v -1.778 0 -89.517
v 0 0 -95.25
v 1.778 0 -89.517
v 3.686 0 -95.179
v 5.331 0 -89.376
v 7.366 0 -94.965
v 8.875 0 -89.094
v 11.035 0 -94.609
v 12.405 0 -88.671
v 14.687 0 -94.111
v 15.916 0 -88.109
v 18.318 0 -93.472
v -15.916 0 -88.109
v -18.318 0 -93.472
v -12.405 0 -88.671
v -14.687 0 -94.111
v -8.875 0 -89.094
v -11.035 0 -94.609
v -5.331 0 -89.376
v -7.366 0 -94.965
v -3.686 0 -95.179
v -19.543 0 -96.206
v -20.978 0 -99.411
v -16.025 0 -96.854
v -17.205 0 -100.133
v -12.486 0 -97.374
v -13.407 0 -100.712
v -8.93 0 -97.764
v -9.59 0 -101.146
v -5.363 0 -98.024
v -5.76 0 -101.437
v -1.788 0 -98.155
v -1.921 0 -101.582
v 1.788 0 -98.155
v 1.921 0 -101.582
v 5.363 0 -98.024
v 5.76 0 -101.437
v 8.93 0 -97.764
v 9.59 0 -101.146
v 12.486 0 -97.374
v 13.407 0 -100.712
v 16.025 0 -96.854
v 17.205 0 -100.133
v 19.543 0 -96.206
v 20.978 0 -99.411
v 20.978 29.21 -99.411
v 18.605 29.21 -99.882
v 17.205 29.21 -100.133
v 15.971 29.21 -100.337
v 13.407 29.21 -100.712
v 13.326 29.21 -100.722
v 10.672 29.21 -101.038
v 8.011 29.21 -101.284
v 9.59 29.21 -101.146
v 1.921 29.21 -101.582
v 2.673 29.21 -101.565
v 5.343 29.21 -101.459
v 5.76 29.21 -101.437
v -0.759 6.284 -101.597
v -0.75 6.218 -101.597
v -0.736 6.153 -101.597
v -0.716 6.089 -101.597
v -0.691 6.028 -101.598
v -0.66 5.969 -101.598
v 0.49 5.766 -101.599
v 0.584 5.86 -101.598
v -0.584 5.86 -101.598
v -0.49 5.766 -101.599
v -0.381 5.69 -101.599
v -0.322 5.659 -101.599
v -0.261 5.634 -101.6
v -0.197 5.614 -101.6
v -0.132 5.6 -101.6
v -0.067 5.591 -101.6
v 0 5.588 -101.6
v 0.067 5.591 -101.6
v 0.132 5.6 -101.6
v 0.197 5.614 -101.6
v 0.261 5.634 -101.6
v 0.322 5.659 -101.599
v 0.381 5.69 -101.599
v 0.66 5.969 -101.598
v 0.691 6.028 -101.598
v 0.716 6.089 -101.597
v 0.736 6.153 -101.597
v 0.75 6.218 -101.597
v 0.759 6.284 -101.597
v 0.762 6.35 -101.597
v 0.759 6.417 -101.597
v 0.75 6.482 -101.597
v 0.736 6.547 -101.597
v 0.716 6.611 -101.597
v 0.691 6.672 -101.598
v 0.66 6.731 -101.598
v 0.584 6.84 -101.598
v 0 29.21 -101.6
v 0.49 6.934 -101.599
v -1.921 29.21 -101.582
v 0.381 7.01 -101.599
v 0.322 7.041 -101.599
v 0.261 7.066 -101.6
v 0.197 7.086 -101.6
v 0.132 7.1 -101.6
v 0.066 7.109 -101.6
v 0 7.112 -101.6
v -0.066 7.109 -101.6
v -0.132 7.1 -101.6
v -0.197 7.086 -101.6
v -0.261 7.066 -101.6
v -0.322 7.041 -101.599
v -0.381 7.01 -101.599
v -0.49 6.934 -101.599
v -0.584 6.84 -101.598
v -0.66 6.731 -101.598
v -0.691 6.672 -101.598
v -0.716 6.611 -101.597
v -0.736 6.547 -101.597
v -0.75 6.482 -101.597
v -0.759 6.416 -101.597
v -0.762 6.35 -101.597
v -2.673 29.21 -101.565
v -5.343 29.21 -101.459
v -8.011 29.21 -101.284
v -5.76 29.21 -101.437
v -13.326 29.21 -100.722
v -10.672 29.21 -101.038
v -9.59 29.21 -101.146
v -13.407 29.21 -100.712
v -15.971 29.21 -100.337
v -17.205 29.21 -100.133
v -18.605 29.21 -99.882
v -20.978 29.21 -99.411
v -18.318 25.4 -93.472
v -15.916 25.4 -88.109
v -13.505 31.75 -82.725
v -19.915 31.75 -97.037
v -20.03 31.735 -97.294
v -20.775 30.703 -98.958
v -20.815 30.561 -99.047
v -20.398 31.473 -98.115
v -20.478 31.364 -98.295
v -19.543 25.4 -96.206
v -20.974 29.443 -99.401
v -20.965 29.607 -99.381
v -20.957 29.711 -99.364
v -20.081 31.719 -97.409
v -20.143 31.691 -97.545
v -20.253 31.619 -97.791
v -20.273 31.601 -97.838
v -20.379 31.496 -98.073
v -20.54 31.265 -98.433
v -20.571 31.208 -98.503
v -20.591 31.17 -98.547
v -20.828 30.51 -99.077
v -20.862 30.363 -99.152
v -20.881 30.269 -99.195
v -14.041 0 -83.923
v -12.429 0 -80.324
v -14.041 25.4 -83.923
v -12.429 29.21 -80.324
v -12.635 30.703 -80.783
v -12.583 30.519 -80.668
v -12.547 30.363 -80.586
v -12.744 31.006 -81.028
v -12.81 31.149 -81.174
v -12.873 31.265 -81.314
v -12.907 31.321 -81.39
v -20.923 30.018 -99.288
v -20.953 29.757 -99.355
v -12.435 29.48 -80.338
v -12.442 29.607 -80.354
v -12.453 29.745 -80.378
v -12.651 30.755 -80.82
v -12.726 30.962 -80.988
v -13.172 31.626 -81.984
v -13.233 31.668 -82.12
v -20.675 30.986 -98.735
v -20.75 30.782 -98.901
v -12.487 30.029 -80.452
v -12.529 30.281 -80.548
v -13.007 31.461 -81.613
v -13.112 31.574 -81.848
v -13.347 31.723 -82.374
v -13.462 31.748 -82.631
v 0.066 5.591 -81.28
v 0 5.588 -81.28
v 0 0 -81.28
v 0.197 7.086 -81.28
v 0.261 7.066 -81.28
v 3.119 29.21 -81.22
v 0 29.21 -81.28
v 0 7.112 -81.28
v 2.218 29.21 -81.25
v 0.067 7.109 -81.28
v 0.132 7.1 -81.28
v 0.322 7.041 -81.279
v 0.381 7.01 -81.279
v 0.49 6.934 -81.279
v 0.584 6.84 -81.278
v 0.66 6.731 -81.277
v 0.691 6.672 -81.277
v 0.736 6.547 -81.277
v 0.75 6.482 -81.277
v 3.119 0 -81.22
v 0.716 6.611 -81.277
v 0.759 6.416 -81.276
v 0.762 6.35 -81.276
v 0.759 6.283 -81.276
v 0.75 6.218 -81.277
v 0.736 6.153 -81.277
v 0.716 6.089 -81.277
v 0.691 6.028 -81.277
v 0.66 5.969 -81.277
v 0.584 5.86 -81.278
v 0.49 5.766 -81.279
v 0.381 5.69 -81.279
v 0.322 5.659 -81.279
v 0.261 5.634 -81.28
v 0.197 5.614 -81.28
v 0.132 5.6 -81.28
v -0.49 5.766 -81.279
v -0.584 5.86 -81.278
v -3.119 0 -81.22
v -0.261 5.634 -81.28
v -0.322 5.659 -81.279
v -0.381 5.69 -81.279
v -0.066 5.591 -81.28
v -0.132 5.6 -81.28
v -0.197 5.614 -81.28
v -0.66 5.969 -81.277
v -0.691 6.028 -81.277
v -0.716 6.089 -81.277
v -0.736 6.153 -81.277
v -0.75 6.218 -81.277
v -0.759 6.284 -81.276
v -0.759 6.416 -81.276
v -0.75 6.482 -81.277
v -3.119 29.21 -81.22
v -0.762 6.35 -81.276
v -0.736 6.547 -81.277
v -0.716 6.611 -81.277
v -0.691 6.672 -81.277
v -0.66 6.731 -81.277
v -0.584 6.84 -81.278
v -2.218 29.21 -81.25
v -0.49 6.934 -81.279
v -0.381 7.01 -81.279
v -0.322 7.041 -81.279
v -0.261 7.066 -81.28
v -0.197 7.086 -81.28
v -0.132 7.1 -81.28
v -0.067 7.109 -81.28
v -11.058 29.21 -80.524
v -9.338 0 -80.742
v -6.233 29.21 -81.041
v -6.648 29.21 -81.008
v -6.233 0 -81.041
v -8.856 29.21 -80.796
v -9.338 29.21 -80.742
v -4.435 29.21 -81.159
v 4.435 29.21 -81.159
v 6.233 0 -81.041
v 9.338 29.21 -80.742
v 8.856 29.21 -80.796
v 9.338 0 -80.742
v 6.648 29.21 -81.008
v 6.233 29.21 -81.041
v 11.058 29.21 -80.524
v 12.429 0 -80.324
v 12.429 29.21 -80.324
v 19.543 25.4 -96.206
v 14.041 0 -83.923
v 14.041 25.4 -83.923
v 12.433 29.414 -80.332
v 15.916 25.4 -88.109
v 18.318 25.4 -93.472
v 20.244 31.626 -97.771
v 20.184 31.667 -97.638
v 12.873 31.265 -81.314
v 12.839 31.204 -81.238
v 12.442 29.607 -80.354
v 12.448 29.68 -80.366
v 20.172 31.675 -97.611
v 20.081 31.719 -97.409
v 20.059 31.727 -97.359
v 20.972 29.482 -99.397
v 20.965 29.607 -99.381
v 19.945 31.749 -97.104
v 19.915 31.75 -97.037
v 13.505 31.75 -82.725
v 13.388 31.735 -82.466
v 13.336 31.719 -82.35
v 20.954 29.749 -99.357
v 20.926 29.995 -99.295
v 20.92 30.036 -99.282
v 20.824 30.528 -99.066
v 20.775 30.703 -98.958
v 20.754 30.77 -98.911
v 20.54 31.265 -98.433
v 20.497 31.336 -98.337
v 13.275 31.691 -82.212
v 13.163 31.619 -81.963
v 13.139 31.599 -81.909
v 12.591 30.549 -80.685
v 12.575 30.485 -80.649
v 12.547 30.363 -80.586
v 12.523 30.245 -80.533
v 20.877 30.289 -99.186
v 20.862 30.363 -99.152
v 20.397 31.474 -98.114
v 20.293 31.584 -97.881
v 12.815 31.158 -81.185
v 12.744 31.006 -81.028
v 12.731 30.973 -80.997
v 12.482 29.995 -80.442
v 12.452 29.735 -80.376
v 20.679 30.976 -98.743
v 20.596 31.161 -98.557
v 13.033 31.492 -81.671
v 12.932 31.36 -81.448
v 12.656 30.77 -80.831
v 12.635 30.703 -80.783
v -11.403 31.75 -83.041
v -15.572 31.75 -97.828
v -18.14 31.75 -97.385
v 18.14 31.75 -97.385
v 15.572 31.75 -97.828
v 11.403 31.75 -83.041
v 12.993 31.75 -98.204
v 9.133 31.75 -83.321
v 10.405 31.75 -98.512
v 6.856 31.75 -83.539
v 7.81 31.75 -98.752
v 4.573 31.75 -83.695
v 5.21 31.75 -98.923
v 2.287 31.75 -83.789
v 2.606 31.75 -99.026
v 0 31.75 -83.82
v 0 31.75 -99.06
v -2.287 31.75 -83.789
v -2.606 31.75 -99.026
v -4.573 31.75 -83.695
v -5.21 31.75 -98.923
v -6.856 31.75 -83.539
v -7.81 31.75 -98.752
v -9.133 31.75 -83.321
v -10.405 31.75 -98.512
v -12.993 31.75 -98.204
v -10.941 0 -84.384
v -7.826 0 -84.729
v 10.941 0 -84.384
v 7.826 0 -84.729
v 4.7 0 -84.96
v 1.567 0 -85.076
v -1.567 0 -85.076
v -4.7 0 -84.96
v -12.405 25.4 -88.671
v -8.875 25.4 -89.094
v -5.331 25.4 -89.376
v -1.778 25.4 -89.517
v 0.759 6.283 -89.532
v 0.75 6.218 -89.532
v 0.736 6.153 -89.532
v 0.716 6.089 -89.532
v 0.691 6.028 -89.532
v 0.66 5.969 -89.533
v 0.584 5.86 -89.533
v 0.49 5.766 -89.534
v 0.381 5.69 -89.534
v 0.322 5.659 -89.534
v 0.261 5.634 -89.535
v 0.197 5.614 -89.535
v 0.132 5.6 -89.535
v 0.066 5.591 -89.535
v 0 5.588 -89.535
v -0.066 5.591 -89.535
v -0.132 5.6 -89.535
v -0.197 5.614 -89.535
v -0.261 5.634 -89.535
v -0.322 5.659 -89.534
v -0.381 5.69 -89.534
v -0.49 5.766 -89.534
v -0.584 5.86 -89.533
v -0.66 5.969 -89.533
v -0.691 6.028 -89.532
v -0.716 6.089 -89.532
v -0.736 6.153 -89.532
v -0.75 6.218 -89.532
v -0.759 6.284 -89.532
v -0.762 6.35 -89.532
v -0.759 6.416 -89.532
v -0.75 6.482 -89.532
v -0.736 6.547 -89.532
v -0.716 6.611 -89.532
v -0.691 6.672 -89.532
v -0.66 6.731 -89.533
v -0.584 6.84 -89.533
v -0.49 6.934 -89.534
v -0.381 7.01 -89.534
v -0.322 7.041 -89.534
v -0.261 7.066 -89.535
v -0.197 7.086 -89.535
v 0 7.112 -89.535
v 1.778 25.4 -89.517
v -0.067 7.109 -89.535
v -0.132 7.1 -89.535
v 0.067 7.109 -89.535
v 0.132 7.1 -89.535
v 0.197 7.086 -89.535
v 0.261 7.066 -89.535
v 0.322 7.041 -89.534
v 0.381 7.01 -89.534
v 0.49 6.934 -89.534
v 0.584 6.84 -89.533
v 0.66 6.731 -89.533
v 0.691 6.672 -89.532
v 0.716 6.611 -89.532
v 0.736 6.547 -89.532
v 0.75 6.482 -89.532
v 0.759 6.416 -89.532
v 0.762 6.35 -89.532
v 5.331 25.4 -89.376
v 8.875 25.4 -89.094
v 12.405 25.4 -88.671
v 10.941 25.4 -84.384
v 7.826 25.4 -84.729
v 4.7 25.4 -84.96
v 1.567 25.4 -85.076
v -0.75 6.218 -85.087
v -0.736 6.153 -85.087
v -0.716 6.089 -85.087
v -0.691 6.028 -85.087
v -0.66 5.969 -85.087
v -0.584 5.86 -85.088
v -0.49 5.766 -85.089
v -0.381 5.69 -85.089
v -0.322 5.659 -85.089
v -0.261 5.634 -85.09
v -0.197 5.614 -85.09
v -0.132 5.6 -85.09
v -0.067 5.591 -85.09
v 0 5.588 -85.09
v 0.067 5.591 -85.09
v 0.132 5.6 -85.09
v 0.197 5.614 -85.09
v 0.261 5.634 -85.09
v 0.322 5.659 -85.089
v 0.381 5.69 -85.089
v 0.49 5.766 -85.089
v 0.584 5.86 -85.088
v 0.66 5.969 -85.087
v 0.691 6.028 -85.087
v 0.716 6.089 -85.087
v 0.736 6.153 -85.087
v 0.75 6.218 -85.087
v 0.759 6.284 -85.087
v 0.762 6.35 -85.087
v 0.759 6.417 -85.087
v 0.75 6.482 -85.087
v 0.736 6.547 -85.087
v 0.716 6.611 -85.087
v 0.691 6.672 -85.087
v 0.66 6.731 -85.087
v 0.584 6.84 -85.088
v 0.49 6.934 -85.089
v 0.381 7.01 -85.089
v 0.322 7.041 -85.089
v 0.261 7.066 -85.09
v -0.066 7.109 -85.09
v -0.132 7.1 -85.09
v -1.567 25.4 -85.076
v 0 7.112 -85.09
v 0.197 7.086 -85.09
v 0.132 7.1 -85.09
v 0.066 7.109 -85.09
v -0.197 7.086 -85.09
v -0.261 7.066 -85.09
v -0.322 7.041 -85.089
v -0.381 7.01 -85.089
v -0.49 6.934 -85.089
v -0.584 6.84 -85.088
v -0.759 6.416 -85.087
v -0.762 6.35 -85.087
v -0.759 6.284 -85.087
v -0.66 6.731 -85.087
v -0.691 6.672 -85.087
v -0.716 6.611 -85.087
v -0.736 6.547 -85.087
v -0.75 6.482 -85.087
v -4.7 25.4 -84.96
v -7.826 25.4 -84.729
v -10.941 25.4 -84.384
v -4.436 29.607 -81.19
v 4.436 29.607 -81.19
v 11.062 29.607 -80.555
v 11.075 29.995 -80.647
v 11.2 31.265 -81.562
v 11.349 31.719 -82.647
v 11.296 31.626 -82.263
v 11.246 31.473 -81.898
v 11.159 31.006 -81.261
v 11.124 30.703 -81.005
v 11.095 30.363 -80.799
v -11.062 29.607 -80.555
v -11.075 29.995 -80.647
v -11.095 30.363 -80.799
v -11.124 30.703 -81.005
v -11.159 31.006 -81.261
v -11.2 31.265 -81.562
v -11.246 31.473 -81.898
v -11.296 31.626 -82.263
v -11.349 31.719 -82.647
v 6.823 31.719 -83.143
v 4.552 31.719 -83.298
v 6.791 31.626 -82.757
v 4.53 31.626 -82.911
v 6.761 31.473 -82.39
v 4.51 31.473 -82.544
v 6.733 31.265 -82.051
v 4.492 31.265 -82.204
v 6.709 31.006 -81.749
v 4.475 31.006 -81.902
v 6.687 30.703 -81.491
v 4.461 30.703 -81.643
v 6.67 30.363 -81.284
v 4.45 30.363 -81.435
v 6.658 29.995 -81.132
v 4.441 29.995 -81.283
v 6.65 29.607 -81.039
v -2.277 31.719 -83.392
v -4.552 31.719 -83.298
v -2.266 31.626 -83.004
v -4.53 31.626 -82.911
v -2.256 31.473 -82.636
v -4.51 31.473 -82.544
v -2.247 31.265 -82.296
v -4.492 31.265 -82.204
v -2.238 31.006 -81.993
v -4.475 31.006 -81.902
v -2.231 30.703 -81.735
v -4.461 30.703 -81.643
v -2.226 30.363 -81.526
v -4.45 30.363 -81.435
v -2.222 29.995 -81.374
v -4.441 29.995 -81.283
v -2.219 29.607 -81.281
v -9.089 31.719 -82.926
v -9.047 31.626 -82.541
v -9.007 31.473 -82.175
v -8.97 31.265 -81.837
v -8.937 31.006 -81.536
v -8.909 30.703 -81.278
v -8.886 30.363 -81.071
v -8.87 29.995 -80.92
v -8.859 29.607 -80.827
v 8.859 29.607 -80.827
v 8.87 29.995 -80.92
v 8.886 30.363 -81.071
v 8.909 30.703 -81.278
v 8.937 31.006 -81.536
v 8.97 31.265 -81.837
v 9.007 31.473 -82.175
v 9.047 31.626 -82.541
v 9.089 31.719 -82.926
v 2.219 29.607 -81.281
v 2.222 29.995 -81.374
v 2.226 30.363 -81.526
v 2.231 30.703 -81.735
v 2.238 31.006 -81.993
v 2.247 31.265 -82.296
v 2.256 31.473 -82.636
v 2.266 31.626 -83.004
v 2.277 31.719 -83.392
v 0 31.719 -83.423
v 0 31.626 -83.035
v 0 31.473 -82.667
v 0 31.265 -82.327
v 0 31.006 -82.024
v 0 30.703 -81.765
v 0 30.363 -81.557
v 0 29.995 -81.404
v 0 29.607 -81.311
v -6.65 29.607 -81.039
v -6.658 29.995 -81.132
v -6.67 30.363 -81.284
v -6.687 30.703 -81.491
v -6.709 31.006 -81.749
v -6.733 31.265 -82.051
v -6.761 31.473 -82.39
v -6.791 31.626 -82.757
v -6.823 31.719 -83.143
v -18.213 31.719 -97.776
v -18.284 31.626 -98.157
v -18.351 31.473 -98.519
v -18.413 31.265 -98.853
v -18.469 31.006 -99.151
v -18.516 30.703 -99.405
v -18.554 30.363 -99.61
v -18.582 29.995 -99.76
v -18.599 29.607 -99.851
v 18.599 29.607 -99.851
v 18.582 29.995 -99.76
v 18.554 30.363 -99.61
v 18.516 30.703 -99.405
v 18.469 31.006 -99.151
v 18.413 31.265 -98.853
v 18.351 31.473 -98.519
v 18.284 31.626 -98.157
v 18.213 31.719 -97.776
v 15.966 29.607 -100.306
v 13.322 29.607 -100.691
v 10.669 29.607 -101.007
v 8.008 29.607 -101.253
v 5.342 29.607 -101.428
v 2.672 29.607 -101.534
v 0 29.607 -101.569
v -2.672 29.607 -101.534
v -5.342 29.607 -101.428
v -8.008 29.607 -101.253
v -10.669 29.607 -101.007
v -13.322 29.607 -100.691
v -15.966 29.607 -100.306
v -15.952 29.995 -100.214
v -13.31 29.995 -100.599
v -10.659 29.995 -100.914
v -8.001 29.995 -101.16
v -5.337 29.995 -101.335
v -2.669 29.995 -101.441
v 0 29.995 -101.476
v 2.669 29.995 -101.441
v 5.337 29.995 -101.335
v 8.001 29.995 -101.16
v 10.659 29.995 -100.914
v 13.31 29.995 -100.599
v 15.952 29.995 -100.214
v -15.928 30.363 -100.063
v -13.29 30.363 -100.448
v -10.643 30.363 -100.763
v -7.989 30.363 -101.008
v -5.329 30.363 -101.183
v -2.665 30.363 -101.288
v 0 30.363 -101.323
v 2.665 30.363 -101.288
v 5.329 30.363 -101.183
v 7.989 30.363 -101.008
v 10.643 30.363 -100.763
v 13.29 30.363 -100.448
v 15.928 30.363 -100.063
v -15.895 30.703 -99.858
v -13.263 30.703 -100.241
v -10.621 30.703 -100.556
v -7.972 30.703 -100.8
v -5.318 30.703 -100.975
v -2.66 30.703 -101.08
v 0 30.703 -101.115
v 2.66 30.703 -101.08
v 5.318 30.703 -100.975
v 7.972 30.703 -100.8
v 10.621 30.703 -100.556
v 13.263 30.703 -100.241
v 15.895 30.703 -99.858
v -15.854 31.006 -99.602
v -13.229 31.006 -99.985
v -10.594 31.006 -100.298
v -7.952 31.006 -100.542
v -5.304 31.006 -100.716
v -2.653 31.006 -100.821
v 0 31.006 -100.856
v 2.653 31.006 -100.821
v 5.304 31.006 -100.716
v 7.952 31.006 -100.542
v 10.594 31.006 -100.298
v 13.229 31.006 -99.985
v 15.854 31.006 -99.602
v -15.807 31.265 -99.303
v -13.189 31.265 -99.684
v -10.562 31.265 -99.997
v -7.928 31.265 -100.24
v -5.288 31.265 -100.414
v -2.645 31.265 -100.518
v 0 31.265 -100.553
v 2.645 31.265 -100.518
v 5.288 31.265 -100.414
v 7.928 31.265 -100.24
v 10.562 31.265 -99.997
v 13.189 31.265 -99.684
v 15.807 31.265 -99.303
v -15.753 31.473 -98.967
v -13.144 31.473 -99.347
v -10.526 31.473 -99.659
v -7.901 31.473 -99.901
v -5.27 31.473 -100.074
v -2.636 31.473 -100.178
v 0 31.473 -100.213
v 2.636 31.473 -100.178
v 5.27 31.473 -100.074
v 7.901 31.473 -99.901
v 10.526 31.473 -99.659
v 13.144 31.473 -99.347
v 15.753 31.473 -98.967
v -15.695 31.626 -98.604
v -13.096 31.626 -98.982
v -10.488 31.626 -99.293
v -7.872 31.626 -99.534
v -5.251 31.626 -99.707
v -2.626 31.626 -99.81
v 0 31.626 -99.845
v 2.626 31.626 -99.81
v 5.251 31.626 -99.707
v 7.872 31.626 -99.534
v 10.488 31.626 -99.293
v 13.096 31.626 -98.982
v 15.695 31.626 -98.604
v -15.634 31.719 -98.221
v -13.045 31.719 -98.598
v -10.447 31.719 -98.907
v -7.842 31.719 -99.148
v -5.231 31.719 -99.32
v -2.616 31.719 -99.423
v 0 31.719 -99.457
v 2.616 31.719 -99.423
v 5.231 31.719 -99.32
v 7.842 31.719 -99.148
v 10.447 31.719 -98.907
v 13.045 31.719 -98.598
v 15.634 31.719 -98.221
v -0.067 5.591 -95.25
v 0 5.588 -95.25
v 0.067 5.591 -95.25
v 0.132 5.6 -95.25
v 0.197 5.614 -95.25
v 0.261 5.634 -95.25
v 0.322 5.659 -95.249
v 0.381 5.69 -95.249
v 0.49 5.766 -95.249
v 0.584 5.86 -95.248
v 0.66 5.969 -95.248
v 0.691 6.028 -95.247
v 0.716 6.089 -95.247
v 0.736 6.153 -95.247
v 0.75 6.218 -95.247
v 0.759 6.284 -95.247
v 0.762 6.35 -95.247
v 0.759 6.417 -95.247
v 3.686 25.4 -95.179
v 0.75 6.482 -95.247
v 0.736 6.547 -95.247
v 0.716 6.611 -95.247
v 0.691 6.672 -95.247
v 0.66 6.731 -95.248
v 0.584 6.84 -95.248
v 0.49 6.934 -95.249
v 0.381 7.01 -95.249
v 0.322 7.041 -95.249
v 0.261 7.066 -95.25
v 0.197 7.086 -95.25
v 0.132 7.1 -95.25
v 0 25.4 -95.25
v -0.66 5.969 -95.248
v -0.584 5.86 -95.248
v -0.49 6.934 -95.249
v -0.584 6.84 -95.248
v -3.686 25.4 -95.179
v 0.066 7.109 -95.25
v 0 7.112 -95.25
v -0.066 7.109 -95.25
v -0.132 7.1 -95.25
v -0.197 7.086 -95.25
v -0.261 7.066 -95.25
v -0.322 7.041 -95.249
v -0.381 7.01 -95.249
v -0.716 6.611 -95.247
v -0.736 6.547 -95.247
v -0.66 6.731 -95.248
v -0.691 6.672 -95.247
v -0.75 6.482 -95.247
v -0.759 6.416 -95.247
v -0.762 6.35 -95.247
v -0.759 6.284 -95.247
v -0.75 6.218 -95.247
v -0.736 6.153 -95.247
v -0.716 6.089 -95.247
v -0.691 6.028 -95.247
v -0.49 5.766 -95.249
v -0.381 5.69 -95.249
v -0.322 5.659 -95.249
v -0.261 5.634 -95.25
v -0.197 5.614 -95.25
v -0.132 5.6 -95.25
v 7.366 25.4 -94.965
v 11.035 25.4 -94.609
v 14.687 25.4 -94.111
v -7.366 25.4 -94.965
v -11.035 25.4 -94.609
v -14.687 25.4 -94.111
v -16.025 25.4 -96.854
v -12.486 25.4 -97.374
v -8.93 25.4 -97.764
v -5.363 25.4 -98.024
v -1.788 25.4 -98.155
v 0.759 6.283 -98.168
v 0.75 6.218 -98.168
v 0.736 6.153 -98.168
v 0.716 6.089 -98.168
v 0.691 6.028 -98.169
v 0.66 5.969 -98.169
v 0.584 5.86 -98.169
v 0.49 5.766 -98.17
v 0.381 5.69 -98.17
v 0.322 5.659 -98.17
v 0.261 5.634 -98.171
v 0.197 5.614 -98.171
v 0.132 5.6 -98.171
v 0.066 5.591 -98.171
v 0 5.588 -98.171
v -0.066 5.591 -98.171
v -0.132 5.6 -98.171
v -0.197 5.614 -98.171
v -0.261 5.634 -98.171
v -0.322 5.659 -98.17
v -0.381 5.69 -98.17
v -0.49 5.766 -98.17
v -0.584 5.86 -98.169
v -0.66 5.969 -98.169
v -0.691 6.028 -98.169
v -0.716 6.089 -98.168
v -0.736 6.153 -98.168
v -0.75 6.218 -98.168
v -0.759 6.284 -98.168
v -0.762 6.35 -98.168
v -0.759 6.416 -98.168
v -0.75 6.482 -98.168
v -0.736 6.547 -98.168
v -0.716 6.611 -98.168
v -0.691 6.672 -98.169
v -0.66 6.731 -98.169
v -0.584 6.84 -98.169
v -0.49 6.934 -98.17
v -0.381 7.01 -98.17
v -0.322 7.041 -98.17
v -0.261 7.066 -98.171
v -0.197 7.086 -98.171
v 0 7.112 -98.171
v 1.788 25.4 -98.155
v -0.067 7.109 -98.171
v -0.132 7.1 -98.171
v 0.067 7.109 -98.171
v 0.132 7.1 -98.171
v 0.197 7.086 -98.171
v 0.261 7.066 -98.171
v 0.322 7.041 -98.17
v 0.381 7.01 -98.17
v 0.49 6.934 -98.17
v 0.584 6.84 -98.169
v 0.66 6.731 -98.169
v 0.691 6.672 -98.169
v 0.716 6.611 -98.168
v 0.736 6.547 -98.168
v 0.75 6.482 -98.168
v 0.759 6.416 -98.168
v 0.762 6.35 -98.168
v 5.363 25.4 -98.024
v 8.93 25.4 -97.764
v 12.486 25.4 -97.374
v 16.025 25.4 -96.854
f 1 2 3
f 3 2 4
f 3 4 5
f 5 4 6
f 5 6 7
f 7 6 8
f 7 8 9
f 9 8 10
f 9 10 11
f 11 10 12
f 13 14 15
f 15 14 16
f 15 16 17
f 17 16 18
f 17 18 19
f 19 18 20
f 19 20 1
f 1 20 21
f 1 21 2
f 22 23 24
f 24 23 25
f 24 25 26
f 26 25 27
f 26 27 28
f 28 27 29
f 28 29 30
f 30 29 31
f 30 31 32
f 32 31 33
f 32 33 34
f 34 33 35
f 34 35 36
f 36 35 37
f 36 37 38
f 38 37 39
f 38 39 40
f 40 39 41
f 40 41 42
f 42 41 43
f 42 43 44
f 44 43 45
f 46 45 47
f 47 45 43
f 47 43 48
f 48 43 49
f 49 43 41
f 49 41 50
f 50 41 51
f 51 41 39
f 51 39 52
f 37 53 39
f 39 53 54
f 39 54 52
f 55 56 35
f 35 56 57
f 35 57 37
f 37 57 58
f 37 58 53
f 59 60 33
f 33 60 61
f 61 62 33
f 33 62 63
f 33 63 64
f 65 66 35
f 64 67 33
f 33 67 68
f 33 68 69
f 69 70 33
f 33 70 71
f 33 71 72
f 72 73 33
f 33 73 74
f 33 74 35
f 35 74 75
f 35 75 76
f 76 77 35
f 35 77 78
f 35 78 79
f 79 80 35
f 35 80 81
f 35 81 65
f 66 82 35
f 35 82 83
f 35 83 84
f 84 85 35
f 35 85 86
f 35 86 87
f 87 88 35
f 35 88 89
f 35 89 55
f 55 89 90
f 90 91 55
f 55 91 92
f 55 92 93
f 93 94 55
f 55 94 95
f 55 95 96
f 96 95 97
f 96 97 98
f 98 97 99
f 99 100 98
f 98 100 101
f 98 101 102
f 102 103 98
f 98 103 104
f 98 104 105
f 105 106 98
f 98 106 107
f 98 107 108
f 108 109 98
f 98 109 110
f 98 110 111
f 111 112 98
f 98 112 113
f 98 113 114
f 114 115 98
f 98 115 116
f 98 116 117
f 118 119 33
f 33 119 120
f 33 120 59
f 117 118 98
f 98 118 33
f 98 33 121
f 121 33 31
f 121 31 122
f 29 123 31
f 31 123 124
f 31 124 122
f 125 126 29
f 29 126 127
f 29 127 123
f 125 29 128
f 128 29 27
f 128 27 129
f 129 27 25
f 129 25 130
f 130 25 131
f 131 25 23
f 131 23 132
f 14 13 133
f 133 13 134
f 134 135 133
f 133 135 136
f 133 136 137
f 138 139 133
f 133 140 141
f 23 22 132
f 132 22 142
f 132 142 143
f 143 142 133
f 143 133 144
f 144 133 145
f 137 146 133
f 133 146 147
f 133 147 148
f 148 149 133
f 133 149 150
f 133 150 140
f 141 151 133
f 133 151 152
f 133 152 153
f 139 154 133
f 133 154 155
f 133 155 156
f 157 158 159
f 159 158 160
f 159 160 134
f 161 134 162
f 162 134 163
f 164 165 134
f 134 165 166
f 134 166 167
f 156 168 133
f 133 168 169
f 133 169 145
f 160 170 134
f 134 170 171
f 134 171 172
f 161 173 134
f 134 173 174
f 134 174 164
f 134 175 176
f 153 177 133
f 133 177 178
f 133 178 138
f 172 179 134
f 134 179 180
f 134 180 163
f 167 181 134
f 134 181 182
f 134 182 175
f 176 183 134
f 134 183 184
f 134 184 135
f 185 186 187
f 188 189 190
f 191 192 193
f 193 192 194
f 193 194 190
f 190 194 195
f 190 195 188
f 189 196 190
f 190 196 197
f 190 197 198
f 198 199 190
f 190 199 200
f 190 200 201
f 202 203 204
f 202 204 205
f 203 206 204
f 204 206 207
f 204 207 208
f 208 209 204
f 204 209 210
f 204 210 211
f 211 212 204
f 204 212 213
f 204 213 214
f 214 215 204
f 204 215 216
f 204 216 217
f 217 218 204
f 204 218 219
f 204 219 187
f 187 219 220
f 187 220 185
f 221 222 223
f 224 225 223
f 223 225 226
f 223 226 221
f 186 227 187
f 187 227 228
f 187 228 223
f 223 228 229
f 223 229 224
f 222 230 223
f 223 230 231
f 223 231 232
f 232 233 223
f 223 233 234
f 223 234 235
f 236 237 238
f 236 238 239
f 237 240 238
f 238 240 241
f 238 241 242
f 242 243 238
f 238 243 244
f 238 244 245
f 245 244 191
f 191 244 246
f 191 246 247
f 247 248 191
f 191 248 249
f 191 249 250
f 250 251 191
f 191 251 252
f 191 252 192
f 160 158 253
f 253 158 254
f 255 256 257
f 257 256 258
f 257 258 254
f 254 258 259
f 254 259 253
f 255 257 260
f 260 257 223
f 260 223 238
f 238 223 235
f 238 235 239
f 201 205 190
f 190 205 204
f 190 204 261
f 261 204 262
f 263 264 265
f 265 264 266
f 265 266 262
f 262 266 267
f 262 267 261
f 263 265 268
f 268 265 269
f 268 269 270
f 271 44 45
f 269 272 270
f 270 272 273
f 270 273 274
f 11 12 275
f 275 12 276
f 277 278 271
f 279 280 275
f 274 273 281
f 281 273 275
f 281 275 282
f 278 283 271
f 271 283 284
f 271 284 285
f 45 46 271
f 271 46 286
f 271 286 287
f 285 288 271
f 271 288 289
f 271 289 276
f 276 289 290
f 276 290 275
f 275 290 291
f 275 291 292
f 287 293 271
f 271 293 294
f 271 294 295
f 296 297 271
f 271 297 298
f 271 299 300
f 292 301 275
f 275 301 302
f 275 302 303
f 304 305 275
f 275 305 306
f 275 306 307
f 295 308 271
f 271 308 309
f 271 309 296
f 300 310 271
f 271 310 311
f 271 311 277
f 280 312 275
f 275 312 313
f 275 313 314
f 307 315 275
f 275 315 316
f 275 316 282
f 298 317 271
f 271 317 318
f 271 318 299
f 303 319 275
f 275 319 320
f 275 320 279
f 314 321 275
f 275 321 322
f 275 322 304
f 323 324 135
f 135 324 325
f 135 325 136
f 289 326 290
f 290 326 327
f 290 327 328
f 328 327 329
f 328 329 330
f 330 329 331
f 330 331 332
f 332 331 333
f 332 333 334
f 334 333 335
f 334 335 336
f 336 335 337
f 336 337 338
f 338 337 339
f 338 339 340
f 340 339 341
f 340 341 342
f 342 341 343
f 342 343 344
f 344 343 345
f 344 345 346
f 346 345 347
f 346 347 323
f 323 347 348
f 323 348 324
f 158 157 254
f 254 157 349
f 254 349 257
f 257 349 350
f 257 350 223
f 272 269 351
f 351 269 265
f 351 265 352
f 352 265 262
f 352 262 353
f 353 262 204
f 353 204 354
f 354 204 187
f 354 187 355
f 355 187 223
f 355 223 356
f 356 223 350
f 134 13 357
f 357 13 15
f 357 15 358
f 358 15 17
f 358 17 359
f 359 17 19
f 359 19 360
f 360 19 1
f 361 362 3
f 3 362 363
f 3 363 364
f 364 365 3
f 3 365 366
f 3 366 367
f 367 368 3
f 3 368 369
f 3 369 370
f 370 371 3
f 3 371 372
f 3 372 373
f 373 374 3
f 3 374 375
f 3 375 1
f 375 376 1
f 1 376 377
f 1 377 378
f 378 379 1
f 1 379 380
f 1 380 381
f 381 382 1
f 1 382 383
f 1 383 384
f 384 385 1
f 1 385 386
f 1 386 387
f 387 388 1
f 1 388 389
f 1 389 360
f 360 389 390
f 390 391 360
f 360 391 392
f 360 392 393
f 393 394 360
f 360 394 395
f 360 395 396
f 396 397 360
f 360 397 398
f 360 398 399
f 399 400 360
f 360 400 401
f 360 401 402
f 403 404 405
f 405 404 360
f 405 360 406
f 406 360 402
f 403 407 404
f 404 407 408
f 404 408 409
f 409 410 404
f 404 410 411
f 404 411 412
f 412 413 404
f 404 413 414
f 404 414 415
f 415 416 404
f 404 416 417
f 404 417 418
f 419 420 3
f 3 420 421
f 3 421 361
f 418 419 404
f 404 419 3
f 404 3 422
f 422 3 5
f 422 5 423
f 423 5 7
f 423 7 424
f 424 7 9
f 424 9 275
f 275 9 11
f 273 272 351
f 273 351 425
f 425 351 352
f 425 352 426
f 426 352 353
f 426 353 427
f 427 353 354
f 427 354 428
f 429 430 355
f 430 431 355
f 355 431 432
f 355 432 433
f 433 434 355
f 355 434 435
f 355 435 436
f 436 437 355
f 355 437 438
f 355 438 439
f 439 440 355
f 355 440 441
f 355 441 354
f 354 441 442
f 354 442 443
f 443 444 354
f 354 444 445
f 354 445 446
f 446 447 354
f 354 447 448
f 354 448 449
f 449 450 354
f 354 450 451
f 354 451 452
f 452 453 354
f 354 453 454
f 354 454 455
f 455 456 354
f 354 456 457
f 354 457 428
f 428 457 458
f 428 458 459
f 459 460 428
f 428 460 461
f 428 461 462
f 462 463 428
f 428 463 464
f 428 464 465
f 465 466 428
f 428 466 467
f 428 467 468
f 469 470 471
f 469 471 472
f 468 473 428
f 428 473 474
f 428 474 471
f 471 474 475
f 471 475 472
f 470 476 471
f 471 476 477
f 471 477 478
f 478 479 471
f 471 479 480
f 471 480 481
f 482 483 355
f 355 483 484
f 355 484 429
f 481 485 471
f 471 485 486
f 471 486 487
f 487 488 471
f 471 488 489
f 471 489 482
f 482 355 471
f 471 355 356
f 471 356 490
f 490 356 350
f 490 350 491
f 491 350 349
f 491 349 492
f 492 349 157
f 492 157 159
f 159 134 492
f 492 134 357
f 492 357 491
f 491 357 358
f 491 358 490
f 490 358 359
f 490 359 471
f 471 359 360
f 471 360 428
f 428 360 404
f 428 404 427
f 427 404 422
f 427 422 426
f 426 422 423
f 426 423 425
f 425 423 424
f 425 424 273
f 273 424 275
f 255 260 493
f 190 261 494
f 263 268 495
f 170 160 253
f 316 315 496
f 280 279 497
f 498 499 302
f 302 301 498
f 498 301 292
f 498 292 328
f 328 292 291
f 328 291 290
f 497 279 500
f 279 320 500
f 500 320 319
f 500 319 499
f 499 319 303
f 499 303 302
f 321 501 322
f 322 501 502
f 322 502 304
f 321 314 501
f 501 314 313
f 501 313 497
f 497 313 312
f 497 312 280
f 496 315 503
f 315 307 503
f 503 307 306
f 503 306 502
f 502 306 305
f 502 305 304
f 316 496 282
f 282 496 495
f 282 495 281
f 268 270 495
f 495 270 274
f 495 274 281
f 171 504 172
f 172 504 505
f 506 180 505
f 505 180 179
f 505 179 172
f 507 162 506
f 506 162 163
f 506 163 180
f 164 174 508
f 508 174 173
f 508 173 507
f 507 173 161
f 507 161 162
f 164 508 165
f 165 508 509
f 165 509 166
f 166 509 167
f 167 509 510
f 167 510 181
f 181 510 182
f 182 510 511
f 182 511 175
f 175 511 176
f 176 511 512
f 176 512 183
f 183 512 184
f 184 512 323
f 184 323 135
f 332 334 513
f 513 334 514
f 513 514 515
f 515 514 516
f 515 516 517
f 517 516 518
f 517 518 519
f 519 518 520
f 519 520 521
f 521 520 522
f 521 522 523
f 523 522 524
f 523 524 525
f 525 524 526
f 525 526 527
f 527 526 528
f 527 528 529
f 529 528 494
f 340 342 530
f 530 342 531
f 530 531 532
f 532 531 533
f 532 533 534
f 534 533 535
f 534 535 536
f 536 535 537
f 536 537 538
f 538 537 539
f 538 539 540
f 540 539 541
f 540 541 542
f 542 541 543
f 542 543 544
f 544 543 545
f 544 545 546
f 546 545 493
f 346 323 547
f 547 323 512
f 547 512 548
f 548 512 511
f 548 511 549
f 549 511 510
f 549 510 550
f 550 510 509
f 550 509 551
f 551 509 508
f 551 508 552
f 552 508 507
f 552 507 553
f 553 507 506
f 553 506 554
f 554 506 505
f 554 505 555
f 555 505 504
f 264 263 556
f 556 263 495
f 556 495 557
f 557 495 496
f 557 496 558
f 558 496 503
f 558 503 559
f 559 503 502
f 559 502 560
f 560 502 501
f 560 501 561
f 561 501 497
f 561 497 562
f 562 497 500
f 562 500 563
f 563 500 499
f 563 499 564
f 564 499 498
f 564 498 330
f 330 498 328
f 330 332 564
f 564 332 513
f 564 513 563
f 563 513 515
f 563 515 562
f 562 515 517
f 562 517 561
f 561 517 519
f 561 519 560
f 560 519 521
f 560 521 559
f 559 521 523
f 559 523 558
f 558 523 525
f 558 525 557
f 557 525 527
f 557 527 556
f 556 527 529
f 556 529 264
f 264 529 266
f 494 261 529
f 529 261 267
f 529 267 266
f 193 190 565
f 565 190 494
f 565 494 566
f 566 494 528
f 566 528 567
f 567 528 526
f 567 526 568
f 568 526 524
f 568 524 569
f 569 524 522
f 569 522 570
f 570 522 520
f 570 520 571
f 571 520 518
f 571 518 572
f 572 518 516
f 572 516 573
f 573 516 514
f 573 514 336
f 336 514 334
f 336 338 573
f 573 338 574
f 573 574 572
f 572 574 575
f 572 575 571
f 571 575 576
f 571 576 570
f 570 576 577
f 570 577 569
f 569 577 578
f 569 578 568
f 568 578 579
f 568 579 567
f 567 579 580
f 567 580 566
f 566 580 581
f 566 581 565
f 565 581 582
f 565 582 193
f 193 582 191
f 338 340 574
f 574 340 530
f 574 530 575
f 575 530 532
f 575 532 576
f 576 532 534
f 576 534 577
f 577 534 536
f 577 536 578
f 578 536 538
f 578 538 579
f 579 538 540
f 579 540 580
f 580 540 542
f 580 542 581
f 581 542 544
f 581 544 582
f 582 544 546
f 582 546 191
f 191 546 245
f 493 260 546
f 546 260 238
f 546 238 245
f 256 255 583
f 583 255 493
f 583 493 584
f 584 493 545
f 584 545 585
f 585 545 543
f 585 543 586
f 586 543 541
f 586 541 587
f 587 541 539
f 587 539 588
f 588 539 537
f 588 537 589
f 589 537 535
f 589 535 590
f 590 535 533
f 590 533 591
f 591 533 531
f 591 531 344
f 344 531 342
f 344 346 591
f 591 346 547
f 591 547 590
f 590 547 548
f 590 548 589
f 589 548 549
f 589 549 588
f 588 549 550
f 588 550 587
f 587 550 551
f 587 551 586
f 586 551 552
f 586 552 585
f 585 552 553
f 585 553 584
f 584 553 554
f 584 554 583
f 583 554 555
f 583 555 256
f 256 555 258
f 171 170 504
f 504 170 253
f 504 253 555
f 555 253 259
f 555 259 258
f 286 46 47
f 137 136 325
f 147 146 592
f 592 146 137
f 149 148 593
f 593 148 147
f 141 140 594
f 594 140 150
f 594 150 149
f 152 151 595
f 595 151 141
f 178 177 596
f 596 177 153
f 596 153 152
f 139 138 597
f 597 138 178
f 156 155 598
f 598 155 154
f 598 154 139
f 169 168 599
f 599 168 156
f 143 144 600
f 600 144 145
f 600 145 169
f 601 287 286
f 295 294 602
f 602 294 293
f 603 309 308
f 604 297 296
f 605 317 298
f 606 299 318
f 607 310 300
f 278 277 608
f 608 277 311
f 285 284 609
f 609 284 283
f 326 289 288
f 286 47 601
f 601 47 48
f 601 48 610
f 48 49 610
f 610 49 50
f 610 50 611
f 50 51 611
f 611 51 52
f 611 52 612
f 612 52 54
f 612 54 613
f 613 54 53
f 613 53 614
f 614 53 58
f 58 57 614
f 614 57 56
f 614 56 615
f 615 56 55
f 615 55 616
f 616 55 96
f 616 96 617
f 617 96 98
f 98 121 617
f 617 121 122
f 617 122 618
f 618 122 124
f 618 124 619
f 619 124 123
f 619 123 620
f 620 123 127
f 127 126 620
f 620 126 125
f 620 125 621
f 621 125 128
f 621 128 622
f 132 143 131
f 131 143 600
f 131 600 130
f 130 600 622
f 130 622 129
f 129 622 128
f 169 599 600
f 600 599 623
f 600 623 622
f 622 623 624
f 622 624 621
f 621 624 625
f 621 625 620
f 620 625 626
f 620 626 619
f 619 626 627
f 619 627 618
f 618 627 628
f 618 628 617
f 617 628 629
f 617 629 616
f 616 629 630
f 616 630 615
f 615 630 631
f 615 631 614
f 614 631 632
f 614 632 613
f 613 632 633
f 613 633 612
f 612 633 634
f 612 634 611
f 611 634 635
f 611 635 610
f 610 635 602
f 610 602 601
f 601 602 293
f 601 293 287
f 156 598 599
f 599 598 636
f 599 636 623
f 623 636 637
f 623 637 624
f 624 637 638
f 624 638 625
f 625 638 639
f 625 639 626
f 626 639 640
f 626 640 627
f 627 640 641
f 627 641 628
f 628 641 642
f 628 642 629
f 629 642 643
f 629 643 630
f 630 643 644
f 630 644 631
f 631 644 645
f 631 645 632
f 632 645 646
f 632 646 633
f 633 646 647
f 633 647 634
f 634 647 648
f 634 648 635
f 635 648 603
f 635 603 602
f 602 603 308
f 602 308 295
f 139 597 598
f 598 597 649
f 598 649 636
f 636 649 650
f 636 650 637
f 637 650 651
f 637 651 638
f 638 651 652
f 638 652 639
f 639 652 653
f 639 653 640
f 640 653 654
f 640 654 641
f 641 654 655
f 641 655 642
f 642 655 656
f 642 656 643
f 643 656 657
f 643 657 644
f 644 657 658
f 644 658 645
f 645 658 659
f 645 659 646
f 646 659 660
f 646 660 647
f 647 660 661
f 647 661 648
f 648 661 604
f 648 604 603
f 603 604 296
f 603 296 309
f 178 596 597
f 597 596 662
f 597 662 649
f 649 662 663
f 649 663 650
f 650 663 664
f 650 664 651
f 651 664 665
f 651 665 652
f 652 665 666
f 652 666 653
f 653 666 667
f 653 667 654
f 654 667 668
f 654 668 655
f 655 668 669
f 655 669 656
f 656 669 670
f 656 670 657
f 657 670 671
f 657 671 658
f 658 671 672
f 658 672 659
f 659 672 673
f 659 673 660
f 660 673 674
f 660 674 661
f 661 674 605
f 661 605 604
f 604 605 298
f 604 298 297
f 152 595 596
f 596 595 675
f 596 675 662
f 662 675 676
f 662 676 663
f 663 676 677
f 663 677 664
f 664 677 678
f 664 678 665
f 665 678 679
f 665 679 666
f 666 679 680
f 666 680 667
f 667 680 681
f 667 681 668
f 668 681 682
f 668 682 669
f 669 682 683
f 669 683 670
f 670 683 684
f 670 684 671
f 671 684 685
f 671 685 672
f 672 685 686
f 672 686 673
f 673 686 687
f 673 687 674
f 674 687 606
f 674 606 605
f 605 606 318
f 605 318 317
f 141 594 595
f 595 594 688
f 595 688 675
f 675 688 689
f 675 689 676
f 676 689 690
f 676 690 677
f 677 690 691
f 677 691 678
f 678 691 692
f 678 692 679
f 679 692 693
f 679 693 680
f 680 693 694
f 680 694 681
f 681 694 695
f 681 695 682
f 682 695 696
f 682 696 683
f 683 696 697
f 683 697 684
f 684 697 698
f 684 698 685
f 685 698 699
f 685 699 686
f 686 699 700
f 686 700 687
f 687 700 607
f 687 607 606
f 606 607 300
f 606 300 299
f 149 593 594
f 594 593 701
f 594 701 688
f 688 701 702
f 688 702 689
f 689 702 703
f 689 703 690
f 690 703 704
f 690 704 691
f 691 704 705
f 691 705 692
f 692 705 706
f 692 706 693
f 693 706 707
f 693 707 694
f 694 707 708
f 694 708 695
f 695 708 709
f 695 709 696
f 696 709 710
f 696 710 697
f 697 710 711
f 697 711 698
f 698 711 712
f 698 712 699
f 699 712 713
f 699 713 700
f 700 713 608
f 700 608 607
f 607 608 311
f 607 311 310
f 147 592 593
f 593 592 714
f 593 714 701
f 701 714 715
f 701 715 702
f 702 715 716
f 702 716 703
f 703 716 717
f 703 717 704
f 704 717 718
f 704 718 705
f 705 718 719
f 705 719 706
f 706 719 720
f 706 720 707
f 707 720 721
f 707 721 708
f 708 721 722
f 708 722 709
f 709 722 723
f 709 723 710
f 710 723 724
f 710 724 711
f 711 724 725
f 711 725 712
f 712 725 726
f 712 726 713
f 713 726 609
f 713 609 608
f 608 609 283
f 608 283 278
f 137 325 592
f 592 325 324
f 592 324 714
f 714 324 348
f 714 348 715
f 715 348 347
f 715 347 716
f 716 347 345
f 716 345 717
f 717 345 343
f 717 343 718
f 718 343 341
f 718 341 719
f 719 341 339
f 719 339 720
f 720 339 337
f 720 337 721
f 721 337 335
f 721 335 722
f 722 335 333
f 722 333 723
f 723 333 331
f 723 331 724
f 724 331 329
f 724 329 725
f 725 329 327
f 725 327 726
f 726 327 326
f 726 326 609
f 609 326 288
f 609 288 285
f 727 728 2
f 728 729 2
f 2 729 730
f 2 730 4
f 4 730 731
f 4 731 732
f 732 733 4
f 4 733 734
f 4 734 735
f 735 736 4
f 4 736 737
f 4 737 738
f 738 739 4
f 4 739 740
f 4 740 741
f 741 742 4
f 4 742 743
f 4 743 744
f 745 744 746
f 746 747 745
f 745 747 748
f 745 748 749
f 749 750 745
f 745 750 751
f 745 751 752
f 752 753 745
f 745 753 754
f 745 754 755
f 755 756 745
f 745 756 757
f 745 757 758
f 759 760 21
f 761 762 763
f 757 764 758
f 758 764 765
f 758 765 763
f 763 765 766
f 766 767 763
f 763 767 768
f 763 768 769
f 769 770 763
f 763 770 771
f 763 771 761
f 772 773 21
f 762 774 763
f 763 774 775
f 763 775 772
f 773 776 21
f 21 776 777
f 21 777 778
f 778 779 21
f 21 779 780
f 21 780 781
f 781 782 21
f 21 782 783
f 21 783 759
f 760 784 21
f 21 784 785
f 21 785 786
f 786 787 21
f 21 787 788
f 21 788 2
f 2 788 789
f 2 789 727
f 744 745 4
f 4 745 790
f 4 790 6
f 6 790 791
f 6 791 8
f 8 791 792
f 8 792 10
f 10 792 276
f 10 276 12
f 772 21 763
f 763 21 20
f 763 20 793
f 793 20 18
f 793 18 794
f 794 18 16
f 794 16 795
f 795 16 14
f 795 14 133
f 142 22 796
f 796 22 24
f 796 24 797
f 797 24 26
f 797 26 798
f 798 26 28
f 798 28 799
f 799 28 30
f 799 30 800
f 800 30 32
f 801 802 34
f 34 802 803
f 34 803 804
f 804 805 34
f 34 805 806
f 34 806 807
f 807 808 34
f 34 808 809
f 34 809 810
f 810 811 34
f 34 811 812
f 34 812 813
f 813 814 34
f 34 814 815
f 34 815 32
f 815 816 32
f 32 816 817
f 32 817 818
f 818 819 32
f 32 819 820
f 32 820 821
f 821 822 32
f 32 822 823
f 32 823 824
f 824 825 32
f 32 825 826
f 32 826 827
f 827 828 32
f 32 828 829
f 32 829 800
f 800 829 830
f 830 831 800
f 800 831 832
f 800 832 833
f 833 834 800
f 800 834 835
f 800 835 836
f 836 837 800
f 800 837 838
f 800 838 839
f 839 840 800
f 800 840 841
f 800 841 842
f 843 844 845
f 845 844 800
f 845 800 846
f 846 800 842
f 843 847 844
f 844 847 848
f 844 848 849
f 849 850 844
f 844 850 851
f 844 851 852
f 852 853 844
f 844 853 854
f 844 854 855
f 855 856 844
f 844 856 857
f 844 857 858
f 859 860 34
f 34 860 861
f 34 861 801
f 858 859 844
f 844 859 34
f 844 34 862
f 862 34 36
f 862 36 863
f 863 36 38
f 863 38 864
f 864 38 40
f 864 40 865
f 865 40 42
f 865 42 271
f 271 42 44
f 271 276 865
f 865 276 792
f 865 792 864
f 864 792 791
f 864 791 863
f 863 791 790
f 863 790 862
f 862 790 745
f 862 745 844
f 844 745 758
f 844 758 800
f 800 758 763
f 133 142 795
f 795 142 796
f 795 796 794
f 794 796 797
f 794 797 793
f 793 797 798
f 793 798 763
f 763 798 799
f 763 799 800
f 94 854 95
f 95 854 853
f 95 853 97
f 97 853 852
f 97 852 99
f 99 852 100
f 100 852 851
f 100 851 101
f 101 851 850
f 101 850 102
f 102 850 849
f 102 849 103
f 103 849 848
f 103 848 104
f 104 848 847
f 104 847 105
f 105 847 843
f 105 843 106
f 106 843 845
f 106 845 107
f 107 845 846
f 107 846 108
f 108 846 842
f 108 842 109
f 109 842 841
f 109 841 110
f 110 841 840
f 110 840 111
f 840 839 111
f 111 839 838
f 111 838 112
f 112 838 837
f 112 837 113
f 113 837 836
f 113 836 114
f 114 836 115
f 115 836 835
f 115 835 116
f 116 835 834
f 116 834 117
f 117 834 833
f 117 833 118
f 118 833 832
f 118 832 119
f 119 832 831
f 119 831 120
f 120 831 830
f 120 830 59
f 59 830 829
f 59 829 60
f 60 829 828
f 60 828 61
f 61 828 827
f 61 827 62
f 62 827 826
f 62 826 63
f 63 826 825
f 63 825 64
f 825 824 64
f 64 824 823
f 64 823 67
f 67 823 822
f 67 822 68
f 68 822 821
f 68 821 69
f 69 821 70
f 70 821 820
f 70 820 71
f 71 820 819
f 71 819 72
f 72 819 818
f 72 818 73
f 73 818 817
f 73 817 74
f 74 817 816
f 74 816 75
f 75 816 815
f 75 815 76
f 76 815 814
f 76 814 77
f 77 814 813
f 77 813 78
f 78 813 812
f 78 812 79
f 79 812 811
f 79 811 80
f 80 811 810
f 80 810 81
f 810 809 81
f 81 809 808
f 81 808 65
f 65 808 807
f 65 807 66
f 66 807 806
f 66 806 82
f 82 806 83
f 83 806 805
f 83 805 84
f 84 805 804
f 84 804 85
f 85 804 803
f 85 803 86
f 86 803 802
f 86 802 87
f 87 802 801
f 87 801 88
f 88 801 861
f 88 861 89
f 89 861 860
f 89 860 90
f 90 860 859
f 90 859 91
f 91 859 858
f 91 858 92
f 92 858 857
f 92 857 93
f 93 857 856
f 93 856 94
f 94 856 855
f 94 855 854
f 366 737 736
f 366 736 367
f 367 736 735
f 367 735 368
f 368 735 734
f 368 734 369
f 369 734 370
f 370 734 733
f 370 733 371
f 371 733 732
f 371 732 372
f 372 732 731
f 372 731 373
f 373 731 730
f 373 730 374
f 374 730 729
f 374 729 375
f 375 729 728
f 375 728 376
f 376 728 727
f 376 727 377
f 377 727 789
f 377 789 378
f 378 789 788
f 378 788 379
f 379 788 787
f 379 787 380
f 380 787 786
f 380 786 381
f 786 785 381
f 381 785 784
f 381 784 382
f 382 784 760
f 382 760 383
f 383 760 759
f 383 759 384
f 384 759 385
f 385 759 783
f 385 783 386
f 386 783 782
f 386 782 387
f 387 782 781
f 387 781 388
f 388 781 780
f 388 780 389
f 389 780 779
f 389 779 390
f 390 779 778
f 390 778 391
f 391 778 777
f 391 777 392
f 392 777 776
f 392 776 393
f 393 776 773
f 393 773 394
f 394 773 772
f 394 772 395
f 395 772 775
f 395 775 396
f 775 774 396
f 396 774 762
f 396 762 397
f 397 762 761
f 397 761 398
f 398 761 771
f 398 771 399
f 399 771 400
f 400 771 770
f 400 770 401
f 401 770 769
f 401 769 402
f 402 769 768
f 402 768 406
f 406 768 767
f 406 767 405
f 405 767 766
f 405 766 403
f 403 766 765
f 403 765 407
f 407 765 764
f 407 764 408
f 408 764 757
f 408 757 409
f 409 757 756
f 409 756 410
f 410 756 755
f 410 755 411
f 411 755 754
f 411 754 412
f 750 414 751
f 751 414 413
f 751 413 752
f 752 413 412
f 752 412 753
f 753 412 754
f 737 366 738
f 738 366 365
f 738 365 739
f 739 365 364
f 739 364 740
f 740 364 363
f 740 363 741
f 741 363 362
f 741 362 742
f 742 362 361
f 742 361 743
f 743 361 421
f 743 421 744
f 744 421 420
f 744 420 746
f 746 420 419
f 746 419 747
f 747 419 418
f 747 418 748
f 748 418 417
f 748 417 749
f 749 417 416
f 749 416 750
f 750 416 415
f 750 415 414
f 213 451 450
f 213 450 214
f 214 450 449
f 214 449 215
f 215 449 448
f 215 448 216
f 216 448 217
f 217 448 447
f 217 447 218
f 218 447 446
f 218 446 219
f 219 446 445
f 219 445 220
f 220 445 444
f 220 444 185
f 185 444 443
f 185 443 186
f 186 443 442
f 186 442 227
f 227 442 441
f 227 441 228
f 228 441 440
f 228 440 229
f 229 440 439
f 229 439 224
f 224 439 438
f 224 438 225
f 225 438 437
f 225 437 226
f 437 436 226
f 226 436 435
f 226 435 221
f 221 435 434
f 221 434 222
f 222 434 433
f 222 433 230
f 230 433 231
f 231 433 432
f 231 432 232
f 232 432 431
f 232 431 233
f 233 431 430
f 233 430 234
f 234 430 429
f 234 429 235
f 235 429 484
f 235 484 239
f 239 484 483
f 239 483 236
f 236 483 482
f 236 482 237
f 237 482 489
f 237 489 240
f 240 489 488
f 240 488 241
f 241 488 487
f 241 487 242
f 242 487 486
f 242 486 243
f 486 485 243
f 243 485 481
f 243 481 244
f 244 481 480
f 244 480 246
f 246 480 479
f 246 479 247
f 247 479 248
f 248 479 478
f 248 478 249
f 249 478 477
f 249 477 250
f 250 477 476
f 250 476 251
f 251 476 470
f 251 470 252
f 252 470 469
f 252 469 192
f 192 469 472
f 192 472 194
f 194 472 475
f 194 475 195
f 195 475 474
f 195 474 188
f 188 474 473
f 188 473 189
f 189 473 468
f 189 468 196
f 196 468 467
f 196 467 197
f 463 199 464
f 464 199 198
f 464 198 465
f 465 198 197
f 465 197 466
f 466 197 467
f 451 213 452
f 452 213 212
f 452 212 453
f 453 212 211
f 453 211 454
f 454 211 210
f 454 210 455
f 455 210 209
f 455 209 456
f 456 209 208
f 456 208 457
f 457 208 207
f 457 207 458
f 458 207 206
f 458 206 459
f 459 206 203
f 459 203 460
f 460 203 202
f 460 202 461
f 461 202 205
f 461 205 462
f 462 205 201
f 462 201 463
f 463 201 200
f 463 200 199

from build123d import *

# Parameters (mm, degrees)
BOSS_EXTRUDE1_DEPTH = 31.75
CUT_EXTRUDE1_DEPTH  = 25.4
FILLET1_R           = 2.54
CUT_EXTRUDE2_DEPTH  = 25.4
SKETCH5_R           = 0.762
CUT_EXTRUDE3_DEPTH  = 266.7


with BuildPart() as part:
    # Sketch1 → Boss-Extrude1 (new body)
    with BuildSketch(Plane(origin=(0, 0, 0), x_dir=(1, 0, 0), z_dir=(0, 1, 0))):
        with BuildLine():
            Line((12.429156122, 80.324059149), (20.977980966, 99.410685113))
            ThreePointArc((20.977980966, 99.410685113), (0, 101.6), (-20.977980966, 99.410685113))
            Line((-20.977980966, 99.410685113), (-12.429156122, 80.324059149))
            ThreePointArc((-12.429156122, 80.324059149), (0, 81.28), (12.429156122, 80.324059149))
        make_face()
    extrude(amount=BOSS_EXTRUDE1_DEPTH)

    # Sketch3 → Cut-Extrude1 (cut)
    with BuildSketch(Plane.XZ):
        with BuildLine():
            Line((-14.041319773, -83.923473707), (-15.916003555, -88.109006667))
            ThreePointArc((-15.916003555, -88.109006667), (0, -89.535), (15.916003555, -88.109006667))
            Line((15.916003555, -88.109006667), (14.041319773, -83.923473707))
            ThreePointArc((14.041319773, -83.923473707), (0, -85.09), (-14.041319773, -83.923473707))
        make_face()
    extrude(amount=-CUT_EXTRUDE1_DEPTH, mode=Mode.SUBTRACT)

    # Fillet1
    fillet1_edges = [part.edges().sort_by_distance(p)[0] for p in [
        (0, 31.75, -81.28),
        (0, 31.75, -101.6),
    ]]
    fillet(fillet1_edges, radius=FILLET1_R)

    # Sketch4 → Cut-Extrude2 (cut)
    with BuildSketch(Plane.XZ):
        with BuildLine():
            Line((-25.786806636, -94.723734325), (-24.259006715, -92.10897401))
            ThreePointArc((-24.259006715, -92.10897401), (10.833808817, -94.63187141), (44.448447191, -84.243088988))
            Line((44.448447191, -84.243088988), (46.527666616, -86.444904305))
            ThreePointArc((46.527666616, -86.444904305), (11.166045621, -97.533915466), (-25.786806636, -94.723734325))
        make_face()
    extrude(amount=-CUT_EXTRUDE2_DEPTH, mode=Mode.SUBTRACT)

    # Sketch5 → Cut-Extrude3 (cut)
    with BuildSketch(Plane.XY):
        with Locations((0, 6.35)):
            Circle(SKETCH5_R)
    extrude(amount=-CUT_EXTRUDE3_DEPTH, mode=Mode.SUBTRACT)


solid = part.part
